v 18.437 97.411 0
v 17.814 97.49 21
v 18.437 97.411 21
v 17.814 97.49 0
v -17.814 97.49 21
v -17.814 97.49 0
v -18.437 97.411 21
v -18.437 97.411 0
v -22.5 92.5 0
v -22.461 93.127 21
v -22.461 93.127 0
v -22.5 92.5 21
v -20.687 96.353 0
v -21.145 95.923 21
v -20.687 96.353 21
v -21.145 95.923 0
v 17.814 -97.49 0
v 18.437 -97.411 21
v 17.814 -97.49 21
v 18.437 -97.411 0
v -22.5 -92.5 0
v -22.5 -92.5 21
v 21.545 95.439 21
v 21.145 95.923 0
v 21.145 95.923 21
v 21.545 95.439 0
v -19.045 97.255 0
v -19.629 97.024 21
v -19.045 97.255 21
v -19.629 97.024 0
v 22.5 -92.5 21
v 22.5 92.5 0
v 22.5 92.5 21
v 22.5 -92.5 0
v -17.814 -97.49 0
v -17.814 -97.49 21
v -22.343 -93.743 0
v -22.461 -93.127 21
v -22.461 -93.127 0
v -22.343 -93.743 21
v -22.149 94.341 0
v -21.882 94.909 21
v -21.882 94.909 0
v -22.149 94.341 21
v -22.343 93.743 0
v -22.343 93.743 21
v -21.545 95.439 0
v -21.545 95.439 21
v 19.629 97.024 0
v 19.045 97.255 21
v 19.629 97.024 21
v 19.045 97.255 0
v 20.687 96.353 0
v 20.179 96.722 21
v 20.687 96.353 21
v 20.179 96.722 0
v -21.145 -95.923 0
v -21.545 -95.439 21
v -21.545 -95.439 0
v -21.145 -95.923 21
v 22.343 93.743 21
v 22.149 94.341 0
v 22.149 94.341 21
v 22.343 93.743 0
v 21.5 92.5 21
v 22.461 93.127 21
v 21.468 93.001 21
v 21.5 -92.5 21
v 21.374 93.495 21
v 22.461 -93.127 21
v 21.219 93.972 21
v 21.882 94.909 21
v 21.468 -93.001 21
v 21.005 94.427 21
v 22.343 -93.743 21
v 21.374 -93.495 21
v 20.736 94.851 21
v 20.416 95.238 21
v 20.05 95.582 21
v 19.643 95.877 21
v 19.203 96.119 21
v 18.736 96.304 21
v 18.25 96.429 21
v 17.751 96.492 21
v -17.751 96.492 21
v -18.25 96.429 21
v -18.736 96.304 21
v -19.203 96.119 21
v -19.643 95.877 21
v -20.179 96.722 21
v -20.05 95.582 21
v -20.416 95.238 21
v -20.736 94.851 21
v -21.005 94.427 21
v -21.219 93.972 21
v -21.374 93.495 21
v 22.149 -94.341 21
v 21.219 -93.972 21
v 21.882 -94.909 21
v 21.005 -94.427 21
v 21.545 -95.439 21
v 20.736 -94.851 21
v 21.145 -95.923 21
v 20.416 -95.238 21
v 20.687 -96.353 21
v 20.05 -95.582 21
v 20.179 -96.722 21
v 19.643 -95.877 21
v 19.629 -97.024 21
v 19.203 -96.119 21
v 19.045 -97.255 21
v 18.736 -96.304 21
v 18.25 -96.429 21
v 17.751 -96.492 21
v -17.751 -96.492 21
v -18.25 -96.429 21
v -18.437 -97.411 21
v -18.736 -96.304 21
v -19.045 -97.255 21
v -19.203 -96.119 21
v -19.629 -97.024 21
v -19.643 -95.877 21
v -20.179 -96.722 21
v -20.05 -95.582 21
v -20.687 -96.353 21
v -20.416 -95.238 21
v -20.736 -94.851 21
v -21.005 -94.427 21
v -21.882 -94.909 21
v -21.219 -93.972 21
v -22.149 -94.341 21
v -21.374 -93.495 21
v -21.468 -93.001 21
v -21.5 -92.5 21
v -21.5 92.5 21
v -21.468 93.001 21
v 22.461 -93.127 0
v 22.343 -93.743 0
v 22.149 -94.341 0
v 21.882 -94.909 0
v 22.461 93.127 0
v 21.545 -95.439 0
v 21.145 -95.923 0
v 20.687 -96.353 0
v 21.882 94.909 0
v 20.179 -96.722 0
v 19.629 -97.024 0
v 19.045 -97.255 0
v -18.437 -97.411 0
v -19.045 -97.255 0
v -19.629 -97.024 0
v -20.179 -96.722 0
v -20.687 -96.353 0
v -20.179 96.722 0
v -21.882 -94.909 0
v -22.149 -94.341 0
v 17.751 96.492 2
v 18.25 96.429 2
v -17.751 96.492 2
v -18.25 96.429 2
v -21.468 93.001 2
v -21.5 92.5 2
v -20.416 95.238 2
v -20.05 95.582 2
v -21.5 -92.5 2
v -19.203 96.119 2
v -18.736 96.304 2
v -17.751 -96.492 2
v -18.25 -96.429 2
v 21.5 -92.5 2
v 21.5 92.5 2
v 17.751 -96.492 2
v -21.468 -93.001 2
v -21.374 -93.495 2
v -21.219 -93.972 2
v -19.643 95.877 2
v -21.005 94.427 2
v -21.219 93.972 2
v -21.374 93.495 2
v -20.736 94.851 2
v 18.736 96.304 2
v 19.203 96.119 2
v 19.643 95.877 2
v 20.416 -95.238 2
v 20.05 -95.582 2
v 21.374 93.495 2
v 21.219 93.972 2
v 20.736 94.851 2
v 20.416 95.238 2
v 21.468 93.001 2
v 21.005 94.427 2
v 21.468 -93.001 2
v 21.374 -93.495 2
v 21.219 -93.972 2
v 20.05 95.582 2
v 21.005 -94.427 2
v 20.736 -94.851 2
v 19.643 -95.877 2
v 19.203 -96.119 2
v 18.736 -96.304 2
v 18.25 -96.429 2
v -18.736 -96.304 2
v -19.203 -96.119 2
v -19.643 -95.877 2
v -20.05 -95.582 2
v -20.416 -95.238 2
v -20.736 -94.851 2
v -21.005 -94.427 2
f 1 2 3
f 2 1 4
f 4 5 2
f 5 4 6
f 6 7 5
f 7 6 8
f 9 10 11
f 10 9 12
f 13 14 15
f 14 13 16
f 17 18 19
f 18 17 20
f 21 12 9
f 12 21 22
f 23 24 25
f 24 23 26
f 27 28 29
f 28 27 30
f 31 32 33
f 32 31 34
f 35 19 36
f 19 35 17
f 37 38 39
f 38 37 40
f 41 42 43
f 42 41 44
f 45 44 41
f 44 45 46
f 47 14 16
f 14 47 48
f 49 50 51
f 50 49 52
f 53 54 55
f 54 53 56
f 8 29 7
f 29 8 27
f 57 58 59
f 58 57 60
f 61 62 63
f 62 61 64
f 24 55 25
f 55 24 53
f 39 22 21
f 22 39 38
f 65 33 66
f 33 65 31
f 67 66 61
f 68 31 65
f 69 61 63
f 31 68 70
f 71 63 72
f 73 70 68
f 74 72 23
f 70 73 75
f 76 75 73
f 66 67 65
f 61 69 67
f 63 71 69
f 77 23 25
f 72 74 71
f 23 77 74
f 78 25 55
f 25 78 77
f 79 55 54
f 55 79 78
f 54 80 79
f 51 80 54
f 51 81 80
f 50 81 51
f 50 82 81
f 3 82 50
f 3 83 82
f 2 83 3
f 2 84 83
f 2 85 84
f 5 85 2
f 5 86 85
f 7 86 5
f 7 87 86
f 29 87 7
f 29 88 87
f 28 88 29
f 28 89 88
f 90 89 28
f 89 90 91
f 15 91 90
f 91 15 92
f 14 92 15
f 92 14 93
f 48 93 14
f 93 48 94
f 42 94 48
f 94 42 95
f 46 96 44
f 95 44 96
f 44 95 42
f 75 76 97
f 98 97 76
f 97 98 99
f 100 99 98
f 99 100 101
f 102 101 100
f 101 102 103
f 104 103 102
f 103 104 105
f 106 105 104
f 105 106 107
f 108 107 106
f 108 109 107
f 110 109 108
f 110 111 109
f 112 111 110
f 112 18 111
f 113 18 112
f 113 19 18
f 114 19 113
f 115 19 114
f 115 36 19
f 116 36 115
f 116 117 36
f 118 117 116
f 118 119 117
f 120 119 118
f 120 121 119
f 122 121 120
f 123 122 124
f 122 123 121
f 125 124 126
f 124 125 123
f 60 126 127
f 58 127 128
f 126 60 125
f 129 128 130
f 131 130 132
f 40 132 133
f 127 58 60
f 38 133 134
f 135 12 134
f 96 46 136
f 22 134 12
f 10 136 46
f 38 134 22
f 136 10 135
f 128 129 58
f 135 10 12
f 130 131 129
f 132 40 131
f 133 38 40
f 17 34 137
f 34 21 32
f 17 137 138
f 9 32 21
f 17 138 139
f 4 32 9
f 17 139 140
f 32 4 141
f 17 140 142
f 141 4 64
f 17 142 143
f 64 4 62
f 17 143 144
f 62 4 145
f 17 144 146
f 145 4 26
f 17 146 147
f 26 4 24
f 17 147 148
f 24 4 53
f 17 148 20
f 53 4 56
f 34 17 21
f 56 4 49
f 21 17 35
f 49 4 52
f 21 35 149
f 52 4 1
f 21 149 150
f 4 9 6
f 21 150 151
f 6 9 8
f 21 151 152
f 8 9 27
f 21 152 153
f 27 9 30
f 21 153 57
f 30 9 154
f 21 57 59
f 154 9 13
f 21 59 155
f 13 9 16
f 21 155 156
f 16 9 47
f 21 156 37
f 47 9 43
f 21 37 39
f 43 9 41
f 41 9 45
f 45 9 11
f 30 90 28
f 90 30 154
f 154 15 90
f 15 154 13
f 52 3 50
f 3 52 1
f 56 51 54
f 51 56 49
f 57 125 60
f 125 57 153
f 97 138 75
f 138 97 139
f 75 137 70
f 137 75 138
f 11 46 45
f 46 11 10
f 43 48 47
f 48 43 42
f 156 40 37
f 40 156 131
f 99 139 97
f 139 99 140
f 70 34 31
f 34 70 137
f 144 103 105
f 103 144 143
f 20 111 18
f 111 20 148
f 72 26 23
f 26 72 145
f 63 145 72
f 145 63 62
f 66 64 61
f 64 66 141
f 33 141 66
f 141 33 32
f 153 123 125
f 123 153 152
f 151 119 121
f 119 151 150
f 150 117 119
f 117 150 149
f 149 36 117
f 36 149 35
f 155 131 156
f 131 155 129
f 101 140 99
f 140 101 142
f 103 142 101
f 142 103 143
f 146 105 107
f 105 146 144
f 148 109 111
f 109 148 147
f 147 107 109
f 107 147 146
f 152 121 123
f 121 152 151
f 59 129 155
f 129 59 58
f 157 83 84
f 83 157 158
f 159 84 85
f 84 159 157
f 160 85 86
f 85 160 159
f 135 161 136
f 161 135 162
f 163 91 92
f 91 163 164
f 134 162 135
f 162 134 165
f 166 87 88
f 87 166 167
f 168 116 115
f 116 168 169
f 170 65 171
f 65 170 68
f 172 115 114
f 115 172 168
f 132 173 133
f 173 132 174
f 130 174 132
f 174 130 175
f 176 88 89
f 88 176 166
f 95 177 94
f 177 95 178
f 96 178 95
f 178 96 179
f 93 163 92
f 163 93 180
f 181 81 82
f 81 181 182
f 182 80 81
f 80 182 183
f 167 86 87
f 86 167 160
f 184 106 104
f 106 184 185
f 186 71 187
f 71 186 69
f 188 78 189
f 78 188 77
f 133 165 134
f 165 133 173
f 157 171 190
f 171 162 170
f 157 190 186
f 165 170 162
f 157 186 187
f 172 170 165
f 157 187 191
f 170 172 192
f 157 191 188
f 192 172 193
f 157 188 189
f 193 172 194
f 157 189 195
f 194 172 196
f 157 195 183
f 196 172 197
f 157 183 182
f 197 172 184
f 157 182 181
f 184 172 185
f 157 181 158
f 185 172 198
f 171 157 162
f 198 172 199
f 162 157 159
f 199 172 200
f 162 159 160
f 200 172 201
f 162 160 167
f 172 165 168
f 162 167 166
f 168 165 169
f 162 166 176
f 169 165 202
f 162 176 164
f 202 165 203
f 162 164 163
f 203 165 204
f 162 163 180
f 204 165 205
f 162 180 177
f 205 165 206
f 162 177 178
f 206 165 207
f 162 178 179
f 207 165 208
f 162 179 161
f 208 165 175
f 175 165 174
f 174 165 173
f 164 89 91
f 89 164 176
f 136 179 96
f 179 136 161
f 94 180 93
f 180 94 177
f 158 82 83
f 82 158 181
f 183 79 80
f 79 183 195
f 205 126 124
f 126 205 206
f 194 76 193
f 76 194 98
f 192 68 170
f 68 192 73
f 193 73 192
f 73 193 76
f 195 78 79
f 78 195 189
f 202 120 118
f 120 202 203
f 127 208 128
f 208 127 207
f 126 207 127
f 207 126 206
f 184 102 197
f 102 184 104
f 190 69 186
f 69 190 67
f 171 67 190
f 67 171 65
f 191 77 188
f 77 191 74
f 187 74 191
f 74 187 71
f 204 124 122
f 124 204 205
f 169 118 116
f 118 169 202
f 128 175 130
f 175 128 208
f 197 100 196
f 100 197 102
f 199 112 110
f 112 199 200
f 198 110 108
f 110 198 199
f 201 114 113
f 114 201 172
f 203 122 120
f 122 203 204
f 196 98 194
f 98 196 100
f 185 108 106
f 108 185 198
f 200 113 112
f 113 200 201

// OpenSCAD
$fn = 50;


difference() {
	union() {
		hull() {
			translate(v = [-17.5000000000, 92.5000000000, 0]) {
				cylinder(h = 21, r = 5);
			}
			translate(v = [17.5000000000, 92.5000000000, 0]) {
				cylinder(h = 21, r = 5);
			}
			translate(v = [-17.5000000000, -92.5000000000, 0]) {
				cylinder(h = 21, r = 5);
			}
			translate(v = [17.5000000000, -92.5000000000, 0]) {
				cylinder(h = 21, r = 5);
			}
		}
	}
	union() {
		translate(v = [0, 0, 2]) {
			hull() {
				translate(v = [-17.5000000000, 92.5000000000, 0]) {
					cylinder(h = 19, r = 4);
				}
				translate(v = [17.5000000000, 92.5000000000, 0]) {
					cylinder(h = 19, r = 4);
				}
				translate(v = [-17.5000000000, -92.5000000000, 0]) {
					cylinder(h = 19, r = 4);
				}
				translate(v = [17.5000000000, -92.5000000000, 0]) {
					cylinder(h = 19, r = 4);
				}
			}
		}
	}
}
